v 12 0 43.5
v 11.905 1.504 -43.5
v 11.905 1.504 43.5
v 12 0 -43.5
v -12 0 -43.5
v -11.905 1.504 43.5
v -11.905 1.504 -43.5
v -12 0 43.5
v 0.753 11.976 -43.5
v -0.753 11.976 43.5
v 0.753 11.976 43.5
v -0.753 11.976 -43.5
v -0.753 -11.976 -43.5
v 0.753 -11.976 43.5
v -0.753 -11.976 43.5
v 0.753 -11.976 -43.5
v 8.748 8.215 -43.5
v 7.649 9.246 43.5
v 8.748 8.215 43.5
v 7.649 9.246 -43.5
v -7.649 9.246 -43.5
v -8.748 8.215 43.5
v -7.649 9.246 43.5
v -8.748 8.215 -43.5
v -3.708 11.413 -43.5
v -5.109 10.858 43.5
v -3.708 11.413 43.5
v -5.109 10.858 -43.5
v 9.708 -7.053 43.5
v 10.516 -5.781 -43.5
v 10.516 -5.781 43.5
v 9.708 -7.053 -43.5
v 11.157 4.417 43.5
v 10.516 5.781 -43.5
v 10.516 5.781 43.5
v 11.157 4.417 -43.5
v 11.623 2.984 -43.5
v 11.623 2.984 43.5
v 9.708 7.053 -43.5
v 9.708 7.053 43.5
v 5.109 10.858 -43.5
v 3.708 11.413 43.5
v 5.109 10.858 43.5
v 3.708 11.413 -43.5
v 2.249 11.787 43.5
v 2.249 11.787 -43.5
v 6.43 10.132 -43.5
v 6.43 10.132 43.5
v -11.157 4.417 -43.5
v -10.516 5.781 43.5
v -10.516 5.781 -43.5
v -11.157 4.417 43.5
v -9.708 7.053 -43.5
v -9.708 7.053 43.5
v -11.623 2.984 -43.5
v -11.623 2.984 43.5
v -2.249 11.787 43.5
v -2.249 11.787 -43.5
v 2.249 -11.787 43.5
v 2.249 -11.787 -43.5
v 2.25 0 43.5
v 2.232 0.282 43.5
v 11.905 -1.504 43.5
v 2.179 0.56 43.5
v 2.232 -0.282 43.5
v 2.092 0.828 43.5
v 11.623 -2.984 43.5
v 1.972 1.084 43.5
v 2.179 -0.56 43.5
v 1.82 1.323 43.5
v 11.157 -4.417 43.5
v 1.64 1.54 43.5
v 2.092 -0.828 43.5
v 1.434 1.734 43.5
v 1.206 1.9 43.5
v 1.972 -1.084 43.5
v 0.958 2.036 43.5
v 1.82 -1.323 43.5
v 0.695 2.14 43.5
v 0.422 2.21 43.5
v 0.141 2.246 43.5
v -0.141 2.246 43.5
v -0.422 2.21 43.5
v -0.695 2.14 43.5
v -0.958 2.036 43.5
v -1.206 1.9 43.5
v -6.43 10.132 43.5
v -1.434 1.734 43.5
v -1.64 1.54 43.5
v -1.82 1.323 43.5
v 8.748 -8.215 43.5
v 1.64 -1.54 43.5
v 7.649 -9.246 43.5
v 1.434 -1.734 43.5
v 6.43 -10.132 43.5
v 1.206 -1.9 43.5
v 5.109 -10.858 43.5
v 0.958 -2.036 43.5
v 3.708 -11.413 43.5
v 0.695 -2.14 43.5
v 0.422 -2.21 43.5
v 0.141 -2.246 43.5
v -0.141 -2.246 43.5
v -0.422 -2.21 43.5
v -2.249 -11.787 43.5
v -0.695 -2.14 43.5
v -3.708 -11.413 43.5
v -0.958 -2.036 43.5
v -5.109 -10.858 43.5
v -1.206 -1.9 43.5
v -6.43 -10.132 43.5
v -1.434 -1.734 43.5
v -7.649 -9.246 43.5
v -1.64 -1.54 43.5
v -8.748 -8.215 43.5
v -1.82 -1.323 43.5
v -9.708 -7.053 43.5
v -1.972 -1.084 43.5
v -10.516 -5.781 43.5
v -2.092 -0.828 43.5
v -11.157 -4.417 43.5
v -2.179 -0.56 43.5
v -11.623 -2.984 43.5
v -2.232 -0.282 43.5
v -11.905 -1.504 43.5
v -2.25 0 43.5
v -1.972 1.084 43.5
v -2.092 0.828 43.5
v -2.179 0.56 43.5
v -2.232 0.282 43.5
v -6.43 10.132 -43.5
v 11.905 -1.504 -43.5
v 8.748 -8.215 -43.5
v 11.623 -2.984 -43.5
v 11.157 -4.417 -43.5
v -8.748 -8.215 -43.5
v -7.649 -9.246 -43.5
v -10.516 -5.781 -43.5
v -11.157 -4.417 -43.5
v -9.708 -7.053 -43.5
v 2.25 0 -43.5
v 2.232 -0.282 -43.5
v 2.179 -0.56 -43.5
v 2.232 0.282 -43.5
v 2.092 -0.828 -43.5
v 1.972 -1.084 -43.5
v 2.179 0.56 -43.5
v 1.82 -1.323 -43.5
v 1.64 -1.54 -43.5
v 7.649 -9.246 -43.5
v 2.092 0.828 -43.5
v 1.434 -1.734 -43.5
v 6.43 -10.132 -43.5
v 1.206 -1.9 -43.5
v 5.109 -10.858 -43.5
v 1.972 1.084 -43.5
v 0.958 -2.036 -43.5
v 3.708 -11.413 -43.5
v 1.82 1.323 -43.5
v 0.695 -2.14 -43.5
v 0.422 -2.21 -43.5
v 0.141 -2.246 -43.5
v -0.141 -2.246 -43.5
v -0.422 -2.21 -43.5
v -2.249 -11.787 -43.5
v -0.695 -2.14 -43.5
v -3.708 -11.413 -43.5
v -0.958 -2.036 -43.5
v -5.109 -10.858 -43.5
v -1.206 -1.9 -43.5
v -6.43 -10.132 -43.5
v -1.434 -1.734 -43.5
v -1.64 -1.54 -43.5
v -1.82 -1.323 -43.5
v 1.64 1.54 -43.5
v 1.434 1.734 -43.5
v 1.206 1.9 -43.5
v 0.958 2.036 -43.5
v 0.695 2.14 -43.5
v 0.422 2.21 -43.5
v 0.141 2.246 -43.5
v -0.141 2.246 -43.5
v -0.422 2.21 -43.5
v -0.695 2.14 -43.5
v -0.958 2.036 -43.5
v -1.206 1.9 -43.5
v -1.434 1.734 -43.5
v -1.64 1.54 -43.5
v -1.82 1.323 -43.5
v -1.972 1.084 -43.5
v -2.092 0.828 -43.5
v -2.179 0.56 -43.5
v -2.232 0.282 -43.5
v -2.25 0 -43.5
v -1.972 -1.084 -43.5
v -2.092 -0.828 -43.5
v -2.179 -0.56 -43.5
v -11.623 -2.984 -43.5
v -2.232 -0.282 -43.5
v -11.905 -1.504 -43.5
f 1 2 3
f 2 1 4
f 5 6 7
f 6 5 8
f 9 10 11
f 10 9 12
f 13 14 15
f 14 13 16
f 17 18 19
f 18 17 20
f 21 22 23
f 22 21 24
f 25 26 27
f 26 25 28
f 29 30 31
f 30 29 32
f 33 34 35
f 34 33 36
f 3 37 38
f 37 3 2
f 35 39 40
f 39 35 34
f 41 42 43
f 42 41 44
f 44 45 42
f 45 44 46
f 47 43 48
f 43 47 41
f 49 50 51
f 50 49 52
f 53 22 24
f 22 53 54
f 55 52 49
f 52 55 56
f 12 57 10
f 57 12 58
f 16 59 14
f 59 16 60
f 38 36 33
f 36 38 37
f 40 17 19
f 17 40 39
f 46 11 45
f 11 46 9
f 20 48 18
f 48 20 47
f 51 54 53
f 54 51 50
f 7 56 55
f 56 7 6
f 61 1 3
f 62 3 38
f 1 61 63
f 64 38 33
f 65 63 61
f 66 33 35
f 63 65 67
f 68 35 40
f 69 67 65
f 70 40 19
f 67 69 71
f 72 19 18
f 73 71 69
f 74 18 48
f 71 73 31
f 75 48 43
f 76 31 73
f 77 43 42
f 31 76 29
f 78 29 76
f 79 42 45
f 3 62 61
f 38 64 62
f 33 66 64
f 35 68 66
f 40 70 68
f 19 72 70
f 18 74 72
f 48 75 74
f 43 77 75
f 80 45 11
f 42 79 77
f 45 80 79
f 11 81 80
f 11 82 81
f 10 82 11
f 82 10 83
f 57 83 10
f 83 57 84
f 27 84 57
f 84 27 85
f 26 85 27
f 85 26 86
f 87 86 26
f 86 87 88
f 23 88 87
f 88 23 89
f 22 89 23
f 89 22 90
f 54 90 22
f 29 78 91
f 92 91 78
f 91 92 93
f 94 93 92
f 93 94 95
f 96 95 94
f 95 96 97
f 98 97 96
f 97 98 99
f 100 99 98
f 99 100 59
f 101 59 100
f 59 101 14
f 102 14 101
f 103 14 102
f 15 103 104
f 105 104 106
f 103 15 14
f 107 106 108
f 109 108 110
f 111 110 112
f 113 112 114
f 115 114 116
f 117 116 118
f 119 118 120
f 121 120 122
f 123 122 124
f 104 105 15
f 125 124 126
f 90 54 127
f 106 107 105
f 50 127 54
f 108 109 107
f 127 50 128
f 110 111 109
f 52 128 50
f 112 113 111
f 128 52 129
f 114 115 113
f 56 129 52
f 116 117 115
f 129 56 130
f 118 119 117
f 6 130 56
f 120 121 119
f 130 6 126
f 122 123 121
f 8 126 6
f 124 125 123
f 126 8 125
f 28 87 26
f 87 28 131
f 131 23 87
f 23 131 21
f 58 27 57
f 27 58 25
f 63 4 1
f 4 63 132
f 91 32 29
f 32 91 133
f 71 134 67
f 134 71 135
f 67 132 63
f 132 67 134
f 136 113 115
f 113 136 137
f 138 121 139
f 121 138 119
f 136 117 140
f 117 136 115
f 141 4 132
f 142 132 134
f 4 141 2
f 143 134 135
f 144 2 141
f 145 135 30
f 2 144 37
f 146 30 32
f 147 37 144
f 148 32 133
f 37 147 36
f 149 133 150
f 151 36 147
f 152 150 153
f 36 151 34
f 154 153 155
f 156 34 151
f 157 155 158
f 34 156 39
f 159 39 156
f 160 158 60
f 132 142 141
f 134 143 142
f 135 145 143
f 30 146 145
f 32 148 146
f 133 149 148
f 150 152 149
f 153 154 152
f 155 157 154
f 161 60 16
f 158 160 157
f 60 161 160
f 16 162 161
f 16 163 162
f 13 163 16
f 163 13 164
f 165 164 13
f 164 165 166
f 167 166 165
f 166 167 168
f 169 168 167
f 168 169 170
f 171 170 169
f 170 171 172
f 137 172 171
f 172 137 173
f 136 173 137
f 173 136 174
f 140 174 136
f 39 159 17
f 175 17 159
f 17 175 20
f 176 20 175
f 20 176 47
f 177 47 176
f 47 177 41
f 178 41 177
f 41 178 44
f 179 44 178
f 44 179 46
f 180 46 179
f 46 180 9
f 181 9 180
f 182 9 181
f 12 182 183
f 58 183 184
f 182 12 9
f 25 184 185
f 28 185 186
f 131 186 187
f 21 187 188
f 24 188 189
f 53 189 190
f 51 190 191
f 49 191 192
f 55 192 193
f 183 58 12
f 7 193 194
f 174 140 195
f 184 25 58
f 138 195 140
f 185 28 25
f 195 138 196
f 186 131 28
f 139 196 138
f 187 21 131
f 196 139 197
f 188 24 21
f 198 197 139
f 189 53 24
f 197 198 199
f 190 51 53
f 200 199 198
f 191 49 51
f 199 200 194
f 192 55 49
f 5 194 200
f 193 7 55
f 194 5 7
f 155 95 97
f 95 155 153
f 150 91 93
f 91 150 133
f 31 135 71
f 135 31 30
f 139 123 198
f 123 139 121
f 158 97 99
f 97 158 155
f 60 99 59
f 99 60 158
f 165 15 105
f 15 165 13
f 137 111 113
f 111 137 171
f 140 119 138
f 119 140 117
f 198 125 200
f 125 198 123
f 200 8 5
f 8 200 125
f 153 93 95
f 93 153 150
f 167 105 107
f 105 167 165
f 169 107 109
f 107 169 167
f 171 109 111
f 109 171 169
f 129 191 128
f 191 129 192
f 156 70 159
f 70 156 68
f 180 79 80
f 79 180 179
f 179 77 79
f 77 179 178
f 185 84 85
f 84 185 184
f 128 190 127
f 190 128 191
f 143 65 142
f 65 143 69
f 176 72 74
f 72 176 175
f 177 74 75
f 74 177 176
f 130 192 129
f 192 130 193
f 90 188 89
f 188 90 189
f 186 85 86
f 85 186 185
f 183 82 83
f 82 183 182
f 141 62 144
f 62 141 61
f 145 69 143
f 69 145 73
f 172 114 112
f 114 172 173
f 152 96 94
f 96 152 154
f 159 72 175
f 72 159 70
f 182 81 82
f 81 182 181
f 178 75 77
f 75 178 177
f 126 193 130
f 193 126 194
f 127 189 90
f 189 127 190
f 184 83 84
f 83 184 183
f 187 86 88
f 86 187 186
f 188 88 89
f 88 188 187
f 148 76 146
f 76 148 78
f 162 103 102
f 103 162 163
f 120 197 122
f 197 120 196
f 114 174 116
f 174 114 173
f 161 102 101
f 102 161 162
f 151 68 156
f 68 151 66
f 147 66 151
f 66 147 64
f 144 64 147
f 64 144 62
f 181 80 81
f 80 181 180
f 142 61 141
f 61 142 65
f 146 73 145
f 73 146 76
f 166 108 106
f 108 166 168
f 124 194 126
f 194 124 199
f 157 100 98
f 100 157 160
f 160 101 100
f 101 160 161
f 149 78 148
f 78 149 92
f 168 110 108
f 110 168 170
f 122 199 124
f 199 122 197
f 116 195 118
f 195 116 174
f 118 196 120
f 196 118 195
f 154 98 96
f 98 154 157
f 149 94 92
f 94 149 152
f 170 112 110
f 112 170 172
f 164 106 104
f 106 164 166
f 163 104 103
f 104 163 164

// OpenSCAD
$fn = 50;


difference() {
	union() {
		translate(v = [0, 0, -43.5000000000]) {
			cylinder(h = 87, r = 12.0000000000);
		}
	}
	union() {
		translate(v = [0, 0, -100.0000000000]) {
			cylinder(h = 200, r = 2.2500000000);
		}
	}
}
